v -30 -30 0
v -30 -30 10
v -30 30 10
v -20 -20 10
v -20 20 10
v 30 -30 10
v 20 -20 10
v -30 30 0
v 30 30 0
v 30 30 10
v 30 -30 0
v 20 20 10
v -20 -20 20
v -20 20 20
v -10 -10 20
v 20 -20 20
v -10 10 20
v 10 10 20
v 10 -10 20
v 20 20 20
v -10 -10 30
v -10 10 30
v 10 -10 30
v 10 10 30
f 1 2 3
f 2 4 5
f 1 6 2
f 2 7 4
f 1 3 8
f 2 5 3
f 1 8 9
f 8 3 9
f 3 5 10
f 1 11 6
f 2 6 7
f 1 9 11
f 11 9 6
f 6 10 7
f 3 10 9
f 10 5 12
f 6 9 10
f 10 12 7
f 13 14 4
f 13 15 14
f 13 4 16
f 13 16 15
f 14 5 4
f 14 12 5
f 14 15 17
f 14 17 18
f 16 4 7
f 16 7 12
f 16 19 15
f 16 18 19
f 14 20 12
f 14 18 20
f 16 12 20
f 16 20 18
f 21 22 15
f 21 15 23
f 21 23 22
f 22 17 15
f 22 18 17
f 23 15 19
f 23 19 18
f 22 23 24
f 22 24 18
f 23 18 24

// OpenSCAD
// 3段の階段状ピラミッド

// 底辺（1段目）: 60mm × 60mm × 10mm
translate([0, 0, 5])
    cube([60, 60, 10], center=true);

// 2段目: 40mm × 40mm × 10mm
translate([0, 0, 15])
    cube([40, 40, 10], center=true);

// 3段目（最上段）: 20mm × 20mm × 10mm
translate([0, 0, 25])
    cube([20, 20, 10], center=true);
